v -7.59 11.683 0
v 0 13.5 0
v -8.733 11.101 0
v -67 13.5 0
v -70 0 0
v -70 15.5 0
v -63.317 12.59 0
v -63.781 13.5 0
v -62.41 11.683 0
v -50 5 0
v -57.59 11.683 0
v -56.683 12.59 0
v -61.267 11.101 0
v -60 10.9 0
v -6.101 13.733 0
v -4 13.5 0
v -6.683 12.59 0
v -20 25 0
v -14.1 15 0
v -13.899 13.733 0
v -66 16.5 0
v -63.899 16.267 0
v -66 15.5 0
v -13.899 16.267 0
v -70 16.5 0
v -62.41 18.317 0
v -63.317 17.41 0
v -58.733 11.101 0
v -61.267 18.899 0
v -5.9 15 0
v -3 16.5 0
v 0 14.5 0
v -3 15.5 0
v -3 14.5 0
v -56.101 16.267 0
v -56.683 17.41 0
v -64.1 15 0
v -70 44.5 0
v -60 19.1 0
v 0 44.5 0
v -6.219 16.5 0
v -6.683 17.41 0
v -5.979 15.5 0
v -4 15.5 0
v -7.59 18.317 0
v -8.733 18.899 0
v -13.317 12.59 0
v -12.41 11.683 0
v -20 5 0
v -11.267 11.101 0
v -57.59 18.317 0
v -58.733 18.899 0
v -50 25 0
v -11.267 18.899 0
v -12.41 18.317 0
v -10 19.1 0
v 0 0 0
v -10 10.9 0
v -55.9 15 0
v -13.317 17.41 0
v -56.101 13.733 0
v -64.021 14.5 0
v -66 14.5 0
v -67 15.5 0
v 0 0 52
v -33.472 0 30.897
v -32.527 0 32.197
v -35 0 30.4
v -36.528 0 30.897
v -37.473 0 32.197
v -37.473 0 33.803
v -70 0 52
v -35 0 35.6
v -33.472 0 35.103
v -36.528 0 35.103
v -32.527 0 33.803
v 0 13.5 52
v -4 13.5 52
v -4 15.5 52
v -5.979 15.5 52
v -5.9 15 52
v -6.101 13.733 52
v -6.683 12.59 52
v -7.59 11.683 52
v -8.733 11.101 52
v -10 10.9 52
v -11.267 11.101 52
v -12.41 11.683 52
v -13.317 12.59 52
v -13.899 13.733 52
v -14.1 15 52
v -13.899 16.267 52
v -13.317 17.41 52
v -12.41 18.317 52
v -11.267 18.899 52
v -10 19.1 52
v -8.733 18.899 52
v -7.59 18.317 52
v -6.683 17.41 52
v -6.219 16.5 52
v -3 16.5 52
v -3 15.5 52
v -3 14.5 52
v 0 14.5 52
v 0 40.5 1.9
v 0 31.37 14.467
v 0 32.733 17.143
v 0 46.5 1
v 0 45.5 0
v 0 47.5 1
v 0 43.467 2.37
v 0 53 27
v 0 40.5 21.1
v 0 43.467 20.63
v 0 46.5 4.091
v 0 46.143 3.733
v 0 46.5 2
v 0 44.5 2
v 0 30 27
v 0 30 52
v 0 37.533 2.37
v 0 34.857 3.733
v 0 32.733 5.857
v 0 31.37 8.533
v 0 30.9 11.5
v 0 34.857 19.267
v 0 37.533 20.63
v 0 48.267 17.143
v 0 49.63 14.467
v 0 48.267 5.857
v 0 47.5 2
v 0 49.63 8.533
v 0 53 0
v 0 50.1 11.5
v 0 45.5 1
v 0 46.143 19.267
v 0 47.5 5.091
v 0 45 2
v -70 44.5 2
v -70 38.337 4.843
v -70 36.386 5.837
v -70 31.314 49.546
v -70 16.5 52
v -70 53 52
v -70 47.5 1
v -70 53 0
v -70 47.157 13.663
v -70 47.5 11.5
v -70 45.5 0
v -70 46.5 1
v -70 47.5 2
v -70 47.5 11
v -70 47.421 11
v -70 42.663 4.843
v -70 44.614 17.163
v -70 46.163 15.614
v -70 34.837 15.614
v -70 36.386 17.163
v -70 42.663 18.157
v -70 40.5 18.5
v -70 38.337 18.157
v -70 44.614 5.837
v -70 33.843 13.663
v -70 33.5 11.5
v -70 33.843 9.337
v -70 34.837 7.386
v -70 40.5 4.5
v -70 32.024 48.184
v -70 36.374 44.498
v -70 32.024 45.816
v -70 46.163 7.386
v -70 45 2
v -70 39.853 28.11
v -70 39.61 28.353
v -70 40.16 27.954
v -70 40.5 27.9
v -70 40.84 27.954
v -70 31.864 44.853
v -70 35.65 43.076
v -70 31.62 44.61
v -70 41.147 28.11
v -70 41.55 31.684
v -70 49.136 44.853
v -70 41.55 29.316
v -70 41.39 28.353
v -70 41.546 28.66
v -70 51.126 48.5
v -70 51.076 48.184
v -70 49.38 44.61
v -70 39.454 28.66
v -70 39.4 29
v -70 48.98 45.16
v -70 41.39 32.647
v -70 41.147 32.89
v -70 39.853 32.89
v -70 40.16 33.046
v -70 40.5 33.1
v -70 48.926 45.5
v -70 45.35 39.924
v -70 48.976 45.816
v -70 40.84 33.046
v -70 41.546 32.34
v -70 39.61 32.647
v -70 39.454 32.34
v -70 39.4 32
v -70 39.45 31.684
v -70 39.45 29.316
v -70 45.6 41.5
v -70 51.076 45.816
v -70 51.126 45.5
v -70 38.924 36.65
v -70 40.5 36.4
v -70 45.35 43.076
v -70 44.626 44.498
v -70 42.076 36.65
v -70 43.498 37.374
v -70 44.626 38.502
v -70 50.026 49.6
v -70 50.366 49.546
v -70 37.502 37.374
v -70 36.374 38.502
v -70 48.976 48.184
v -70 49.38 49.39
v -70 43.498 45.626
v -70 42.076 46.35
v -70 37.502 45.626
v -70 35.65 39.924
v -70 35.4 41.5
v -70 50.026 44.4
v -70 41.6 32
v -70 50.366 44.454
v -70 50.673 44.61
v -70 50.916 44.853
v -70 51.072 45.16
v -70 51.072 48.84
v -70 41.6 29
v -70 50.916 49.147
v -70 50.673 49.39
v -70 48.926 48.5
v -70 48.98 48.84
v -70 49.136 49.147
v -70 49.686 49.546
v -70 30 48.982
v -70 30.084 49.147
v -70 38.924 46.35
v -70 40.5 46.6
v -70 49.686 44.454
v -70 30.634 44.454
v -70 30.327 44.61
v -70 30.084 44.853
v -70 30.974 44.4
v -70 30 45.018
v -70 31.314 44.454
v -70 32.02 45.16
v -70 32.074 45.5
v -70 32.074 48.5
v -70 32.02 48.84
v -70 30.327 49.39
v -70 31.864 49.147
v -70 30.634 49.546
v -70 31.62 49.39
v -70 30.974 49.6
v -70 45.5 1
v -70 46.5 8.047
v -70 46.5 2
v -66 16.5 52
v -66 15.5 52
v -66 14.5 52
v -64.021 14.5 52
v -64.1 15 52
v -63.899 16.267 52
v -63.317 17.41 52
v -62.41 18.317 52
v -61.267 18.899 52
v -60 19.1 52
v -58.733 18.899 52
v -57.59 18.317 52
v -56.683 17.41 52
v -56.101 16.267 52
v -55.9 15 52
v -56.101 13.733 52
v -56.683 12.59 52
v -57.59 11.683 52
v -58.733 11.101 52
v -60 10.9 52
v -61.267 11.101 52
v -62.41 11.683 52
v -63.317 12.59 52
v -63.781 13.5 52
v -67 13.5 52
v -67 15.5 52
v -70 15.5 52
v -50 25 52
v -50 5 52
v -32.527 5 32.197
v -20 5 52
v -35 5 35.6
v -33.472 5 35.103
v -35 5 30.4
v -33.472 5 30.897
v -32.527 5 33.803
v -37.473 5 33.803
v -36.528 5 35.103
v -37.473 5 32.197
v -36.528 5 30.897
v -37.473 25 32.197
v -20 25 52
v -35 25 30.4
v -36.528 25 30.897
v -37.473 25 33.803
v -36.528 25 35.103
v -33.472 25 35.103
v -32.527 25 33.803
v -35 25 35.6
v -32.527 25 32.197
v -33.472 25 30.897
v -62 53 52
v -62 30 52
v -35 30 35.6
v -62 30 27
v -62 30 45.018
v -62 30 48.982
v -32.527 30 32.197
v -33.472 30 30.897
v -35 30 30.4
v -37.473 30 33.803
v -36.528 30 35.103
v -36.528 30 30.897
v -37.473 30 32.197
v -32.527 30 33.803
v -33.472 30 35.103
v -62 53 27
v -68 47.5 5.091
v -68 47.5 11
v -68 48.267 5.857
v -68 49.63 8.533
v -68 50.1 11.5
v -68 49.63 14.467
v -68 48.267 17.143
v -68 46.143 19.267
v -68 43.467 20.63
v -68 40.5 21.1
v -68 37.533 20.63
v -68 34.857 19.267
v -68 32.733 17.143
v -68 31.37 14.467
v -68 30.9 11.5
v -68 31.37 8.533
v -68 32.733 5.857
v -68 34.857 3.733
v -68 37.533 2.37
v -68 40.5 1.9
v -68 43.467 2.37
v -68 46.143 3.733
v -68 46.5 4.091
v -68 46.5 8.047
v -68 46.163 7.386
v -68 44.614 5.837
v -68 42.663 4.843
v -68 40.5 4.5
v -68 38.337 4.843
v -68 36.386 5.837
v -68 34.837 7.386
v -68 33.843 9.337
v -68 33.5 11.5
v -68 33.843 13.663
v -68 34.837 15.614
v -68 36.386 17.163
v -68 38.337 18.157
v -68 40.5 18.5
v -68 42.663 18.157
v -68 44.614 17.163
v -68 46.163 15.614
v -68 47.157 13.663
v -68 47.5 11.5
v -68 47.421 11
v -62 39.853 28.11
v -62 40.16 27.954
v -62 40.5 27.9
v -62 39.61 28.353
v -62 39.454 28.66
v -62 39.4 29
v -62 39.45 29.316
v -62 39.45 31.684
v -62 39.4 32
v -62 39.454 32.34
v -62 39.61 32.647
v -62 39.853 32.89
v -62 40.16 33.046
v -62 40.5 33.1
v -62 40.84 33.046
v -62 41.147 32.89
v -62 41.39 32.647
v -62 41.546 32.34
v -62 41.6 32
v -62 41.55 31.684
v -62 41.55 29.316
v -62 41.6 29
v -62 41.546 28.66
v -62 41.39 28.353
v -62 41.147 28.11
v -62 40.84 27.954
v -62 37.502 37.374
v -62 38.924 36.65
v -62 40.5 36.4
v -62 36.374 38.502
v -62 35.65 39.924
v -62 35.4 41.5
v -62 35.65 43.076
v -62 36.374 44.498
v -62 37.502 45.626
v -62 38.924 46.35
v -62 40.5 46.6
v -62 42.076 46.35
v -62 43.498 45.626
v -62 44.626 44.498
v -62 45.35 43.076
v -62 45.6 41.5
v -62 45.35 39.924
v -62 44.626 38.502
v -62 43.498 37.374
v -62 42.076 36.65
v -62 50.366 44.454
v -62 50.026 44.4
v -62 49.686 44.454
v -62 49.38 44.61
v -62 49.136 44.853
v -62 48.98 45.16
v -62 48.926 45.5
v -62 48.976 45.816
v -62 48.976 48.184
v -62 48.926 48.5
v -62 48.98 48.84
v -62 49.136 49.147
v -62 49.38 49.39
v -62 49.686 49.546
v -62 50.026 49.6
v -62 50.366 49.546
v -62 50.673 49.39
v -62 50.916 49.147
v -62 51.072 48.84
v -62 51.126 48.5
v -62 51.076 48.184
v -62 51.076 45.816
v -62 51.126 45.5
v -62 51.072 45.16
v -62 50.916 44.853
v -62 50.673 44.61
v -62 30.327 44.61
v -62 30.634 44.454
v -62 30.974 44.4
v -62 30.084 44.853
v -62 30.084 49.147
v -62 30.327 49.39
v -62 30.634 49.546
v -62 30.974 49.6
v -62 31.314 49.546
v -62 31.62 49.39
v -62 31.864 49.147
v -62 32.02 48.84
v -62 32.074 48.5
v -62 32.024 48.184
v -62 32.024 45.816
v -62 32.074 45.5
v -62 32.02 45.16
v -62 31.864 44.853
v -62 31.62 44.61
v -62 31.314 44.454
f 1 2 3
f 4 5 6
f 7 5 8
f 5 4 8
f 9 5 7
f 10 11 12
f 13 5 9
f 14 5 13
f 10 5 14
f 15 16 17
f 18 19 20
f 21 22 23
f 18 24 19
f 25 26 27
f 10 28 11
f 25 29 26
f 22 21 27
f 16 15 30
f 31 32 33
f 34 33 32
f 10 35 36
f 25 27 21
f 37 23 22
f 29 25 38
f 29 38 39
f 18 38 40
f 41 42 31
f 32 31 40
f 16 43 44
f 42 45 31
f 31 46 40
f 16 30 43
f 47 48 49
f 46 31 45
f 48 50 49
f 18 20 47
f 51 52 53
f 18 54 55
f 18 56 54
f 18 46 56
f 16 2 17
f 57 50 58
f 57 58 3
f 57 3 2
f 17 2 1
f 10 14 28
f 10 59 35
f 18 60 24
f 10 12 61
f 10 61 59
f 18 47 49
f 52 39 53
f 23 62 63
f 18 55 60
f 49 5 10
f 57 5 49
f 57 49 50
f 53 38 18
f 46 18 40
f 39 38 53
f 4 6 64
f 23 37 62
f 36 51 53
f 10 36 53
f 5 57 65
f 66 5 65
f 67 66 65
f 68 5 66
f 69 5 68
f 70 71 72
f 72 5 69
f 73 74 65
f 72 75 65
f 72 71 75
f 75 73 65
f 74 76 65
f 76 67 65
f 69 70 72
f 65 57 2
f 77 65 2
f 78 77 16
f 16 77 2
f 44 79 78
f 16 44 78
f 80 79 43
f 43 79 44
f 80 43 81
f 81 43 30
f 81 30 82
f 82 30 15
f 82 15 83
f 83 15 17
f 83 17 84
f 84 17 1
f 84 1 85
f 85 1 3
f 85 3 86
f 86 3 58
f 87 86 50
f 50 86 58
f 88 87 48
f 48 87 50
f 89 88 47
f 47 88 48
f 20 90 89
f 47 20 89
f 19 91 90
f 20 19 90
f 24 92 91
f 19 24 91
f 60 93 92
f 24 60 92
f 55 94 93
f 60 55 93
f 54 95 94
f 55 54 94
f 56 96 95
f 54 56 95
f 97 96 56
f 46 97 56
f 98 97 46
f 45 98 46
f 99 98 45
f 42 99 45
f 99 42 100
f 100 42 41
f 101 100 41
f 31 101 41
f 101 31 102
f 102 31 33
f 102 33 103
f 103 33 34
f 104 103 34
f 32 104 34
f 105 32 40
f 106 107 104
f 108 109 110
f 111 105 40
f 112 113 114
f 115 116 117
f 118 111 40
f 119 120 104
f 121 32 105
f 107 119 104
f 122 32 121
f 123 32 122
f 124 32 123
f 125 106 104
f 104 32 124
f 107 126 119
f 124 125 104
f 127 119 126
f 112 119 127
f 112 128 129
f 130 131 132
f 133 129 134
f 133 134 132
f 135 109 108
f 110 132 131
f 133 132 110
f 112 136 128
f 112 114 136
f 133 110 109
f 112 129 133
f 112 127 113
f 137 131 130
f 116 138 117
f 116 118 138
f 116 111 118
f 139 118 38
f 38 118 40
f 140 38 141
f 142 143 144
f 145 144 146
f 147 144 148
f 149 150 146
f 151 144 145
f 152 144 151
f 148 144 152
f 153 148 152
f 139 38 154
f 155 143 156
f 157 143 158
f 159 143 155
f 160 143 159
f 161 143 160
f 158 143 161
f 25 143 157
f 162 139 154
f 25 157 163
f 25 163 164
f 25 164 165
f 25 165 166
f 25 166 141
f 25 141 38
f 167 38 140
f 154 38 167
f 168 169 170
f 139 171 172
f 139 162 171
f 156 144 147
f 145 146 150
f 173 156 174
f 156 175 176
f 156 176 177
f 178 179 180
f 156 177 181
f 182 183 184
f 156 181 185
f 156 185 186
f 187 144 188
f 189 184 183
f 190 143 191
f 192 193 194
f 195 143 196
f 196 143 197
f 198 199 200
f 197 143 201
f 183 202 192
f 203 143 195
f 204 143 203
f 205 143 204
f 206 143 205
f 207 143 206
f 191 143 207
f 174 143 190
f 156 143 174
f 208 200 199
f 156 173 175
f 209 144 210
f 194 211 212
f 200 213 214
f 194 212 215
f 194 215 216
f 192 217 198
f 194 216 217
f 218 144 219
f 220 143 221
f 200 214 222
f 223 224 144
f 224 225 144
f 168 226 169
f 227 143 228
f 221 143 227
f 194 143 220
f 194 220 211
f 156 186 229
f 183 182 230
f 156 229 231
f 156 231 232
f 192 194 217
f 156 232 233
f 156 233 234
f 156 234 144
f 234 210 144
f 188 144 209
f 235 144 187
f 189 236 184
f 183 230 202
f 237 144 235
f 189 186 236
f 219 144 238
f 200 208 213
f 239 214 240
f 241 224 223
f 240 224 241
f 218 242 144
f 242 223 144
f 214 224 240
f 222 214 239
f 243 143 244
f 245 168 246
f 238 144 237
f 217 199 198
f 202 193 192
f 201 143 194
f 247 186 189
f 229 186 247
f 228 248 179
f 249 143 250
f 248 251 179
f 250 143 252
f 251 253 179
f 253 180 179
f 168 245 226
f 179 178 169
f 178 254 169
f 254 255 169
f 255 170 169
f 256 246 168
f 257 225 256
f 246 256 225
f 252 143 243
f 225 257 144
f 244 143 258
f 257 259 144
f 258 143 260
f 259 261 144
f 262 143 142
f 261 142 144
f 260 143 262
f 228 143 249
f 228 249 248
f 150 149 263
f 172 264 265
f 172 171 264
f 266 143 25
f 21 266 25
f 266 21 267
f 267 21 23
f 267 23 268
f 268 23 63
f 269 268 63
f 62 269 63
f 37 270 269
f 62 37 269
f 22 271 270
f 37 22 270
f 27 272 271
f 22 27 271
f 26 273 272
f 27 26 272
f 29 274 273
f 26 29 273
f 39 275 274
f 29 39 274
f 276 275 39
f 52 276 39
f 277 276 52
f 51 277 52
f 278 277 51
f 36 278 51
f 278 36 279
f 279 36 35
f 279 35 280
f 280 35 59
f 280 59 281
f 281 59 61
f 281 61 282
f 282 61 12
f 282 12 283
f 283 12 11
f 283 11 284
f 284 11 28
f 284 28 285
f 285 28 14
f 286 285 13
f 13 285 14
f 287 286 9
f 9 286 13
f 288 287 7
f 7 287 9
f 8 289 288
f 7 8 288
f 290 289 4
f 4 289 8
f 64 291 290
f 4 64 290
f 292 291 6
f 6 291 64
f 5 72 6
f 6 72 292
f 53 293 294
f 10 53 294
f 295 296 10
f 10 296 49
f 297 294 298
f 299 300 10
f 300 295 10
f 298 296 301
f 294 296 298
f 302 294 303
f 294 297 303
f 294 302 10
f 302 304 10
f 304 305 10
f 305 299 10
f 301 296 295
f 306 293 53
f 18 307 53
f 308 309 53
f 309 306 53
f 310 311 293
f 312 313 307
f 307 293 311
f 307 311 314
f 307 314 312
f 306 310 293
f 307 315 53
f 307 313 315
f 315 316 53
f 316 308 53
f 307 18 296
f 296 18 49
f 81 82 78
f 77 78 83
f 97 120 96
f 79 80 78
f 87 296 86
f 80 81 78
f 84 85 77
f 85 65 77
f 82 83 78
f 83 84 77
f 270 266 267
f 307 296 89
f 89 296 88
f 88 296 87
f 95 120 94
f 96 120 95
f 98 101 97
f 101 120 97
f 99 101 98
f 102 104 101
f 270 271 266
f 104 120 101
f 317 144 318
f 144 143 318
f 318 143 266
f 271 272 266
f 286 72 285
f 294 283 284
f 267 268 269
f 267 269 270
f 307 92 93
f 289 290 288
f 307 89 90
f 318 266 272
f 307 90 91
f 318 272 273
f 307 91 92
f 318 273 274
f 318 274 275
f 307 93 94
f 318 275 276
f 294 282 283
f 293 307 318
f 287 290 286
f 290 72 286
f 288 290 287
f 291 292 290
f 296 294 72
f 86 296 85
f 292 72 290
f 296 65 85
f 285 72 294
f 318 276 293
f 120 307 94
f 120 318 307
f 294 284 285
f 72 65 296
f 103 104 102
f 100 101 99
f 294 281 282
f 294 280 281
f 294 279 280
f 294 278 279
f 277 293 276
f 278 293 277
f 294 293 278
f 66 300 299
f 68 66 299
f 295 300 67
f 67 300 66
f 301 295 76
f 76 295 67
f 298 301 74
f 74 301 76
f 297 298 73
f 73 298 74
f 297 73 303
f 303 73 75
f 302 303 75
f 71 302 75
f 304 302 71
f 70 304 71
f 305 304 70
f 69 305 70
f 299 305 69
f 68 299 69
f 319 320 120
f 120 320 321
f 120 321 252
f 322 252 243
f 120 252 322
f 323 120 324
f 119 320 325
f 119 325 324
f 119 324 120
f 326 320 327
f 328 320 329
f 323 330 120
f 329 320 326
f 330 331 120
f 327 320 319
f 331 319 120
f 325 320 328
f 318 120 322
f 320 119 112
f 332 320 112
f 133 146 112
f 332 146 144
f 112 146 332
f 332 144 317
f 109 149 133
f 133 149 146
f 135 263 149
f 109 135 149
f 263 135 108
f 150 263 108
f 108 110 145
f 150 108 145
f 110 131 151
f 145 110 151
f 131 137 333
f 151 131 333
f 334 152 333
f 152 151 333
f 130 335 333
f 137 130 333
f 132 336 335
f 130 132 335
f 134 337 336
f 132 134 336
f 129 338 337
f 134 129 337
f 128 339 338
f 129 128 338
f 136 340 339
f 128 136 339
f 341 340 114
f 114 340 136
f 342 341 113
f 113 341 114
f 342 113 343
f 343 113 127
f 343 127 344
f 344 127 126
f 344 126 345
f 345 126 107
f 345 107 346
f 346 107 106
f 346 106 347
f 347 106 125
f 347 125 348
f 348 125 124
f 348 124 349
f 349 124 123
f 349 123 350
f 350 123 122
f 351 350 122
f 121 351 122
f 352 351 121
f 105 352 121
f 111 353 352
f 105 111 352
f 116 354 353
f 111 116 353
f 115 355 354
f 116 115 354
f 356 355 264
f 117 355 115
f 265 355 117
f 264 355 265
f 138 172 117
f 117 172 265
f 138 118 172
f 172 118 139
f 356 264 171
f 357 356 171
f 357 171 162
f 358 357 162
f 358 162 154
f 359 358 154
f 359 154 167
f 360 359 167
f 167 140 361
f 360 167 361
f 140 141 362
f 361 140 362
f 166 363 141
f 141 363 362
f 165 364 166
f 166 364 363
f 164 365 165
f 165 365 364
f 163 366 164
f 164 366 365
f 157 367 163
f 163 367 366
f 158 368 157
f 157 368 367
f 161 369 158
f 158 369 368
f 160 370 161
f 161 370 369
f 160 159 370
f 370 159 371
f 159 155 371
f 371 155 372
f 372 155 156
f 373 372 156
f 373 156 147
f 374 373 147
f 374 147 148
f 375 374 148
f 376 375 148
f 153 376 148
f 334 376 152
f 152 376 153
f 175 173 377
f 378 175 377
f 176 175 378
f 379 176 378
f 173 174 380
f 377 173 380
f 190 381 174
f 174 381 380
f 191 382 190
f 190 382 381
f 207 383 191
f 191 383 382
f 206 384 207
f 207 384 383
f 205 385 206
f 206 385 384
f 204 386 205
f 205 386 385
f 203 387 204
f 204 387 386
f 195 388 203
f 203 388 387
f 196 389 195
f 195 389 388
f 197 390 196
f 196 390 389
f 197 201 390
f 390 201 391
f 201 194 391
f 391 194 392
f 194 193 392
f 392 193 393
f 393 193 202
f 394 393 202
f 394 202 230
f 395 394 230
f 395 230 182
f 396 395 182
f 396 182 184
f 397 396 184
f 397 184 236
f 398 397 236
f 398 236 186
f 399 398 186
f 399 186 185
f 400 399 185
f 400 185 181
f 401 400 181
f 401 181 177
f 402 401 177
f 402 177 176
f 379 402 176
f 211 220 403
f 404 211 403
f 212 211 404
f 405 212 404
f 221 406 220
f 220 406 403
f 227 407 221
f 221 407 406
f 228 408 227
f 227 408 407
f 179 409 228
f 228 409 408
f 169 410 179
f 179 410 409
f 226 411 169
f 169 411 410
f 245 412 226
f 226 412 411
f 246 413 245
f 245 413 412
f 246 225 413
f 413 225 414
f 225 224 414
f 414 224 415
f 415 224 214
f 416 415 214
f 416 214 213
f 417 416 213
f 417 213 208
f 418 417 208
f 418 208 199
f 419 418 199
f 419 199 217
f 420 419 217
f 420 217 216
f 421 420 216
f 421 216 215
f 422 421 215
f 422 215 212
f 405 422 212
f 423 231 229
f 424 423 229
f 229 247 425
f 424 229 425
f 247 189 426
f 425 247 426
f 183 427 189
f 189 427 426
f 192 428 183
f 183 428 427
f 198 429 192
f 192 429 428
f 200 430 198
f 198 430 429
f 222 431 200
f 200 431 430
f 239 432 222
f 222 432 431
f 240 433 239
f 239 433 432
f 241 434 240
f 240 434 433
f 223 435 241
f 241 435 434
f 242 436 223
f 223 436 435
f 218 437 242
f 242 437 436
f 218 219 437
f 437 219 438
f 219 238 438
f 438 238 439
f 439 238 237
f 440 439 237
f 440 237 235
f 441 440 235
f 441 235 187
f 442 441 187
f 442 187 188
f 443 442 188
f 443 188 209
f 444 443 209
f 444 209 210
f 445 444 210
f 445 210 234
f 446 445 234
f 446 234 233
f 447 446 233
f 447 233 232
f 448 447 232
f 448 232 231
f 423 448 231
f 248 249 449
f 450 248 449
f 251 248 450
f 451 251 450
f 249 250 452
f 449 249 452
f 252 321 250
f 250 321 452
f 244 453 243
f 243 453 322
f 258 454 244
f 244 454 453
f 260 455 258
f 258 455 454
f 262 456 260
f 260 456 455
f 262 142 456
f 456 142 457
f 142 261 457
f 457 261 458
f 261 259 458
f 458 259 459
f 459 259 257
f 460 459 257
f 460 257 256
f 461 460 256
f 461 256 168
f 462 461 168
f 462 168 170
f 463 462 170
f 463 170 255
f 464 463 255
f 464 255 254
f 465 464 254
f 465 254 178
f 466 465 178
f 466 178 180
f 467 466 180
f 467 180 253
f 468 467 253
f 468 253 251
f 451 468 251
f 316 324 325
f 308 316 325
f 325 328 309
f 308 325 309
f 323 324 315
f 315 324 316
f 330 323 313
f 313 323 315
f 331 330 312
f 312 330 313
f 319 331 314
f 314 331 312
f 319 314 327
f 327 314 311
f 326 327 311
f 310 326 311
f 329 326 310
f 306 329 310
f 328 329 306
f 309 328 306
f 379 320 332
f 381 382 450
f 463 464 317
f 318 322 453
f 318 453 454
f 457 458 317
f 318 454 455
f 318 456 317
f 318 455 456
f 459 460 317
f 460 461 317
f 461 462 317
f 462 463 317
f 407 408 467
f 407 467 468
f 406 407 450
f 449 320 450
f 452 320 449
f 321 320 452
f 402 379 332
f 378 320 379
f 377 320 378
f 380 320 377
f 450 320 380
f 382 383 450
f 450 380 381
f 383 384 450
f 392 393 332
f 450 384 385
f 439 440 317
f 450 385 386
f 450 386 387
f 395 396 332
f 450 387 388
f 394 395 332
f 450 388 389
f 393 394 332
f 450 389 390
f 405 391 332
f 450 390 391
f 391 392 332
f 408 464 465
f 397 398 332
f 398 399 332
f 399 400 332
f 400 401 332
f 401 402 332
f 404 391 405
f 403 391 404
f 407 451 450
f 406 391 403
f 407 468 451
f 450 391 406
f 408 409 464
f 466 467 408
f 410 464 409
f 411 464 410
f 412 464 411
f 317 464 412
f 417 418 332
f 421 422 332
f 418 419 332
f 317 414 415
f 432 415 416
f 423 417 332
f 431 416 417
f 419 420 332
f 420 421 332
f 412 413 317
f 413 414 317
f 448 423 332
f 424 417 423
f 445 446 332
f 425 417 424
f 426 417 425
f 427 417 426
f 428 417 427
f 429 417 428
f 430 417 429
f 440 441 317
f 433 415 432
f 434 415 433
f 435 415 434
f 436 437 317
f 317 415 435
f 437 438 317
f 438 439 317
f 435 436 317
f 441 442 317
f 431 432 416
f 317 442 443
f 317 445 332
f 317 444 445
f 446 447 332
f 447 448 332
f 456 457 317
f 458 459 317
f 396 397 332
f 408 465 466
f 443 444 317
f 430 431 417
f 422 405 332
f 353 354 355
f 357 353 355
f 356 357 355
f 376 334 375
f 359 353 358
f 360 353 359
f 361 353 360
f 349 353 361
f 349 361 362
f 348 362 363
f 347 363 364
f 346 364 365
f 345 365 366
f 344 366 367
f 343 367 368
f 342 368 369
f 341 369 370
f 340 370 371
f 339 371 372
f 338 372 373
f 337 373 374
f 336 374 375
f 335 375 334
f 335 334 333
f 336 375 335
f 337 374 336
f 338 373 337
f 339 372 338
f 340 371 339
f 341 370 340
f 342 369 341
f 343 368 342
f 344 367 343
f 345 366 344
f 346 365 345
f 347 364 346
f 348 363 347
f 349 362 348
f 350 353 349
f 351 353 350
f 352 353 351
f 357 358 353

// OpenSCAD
// file: ../config.scad
holes_extra_radius_compensation = 0.1;

z_axis_shaft_diameter = 10;
z_linear_bearing_outside_diameter = 19;
z_linear_bearing_length = 29;
z_shaft_to_leadscrew_distance = 20/2 + 42/2;  // Half a t-slot + half a stepper motor
z_leadscrew_diameter = 8;
z_leadscrew_nut_screw_diameter = 2;

x_axis_shaft_diameter = 8;
x_axis_pressure_slot_width = 1;
x_end_box_height = 70;

junction_assurance_length = 1;
// main file
// x-bearing-end is the right end of the X axis, it holds the bearing for the pulley, is attached to the Z shaft with 
// linear ball bearings, and is moved by the Z leadscrew
// It also holds the two X shafts
// It is derived from the base x-end ( x_end_base )

include <../config.scad>;
include <base-components/x-end-base.scad>;

// Component-specific calculated values
bearing_holder_distance = z_linear_bearing_outside_diameter + 2*2 + 10; 

rotate(a=[0,270,0]){ x_bearing_end(); }

module x_bearing_end(){
    difference(){
        union(){
            // Base x-end solid : as both are a mirror, we only code it once
            x_end_base(); 
        }

        // Remove extraneous solid
        translate([52,-junction_assurance_length,-junction_assurance_length]){
            cube([200,200,200]);
        }


        // Holes for 5mm bearing holder bolt
        translate([bearing_holder_distance, 0, x_end_box_height/2]){ 
            rotate(a=[90,0,0]){
                cylinder(h=200, r=(5/2)+holes_extra_radius_compensation, center=true, $fn=10);
            }
        }
    }

}
